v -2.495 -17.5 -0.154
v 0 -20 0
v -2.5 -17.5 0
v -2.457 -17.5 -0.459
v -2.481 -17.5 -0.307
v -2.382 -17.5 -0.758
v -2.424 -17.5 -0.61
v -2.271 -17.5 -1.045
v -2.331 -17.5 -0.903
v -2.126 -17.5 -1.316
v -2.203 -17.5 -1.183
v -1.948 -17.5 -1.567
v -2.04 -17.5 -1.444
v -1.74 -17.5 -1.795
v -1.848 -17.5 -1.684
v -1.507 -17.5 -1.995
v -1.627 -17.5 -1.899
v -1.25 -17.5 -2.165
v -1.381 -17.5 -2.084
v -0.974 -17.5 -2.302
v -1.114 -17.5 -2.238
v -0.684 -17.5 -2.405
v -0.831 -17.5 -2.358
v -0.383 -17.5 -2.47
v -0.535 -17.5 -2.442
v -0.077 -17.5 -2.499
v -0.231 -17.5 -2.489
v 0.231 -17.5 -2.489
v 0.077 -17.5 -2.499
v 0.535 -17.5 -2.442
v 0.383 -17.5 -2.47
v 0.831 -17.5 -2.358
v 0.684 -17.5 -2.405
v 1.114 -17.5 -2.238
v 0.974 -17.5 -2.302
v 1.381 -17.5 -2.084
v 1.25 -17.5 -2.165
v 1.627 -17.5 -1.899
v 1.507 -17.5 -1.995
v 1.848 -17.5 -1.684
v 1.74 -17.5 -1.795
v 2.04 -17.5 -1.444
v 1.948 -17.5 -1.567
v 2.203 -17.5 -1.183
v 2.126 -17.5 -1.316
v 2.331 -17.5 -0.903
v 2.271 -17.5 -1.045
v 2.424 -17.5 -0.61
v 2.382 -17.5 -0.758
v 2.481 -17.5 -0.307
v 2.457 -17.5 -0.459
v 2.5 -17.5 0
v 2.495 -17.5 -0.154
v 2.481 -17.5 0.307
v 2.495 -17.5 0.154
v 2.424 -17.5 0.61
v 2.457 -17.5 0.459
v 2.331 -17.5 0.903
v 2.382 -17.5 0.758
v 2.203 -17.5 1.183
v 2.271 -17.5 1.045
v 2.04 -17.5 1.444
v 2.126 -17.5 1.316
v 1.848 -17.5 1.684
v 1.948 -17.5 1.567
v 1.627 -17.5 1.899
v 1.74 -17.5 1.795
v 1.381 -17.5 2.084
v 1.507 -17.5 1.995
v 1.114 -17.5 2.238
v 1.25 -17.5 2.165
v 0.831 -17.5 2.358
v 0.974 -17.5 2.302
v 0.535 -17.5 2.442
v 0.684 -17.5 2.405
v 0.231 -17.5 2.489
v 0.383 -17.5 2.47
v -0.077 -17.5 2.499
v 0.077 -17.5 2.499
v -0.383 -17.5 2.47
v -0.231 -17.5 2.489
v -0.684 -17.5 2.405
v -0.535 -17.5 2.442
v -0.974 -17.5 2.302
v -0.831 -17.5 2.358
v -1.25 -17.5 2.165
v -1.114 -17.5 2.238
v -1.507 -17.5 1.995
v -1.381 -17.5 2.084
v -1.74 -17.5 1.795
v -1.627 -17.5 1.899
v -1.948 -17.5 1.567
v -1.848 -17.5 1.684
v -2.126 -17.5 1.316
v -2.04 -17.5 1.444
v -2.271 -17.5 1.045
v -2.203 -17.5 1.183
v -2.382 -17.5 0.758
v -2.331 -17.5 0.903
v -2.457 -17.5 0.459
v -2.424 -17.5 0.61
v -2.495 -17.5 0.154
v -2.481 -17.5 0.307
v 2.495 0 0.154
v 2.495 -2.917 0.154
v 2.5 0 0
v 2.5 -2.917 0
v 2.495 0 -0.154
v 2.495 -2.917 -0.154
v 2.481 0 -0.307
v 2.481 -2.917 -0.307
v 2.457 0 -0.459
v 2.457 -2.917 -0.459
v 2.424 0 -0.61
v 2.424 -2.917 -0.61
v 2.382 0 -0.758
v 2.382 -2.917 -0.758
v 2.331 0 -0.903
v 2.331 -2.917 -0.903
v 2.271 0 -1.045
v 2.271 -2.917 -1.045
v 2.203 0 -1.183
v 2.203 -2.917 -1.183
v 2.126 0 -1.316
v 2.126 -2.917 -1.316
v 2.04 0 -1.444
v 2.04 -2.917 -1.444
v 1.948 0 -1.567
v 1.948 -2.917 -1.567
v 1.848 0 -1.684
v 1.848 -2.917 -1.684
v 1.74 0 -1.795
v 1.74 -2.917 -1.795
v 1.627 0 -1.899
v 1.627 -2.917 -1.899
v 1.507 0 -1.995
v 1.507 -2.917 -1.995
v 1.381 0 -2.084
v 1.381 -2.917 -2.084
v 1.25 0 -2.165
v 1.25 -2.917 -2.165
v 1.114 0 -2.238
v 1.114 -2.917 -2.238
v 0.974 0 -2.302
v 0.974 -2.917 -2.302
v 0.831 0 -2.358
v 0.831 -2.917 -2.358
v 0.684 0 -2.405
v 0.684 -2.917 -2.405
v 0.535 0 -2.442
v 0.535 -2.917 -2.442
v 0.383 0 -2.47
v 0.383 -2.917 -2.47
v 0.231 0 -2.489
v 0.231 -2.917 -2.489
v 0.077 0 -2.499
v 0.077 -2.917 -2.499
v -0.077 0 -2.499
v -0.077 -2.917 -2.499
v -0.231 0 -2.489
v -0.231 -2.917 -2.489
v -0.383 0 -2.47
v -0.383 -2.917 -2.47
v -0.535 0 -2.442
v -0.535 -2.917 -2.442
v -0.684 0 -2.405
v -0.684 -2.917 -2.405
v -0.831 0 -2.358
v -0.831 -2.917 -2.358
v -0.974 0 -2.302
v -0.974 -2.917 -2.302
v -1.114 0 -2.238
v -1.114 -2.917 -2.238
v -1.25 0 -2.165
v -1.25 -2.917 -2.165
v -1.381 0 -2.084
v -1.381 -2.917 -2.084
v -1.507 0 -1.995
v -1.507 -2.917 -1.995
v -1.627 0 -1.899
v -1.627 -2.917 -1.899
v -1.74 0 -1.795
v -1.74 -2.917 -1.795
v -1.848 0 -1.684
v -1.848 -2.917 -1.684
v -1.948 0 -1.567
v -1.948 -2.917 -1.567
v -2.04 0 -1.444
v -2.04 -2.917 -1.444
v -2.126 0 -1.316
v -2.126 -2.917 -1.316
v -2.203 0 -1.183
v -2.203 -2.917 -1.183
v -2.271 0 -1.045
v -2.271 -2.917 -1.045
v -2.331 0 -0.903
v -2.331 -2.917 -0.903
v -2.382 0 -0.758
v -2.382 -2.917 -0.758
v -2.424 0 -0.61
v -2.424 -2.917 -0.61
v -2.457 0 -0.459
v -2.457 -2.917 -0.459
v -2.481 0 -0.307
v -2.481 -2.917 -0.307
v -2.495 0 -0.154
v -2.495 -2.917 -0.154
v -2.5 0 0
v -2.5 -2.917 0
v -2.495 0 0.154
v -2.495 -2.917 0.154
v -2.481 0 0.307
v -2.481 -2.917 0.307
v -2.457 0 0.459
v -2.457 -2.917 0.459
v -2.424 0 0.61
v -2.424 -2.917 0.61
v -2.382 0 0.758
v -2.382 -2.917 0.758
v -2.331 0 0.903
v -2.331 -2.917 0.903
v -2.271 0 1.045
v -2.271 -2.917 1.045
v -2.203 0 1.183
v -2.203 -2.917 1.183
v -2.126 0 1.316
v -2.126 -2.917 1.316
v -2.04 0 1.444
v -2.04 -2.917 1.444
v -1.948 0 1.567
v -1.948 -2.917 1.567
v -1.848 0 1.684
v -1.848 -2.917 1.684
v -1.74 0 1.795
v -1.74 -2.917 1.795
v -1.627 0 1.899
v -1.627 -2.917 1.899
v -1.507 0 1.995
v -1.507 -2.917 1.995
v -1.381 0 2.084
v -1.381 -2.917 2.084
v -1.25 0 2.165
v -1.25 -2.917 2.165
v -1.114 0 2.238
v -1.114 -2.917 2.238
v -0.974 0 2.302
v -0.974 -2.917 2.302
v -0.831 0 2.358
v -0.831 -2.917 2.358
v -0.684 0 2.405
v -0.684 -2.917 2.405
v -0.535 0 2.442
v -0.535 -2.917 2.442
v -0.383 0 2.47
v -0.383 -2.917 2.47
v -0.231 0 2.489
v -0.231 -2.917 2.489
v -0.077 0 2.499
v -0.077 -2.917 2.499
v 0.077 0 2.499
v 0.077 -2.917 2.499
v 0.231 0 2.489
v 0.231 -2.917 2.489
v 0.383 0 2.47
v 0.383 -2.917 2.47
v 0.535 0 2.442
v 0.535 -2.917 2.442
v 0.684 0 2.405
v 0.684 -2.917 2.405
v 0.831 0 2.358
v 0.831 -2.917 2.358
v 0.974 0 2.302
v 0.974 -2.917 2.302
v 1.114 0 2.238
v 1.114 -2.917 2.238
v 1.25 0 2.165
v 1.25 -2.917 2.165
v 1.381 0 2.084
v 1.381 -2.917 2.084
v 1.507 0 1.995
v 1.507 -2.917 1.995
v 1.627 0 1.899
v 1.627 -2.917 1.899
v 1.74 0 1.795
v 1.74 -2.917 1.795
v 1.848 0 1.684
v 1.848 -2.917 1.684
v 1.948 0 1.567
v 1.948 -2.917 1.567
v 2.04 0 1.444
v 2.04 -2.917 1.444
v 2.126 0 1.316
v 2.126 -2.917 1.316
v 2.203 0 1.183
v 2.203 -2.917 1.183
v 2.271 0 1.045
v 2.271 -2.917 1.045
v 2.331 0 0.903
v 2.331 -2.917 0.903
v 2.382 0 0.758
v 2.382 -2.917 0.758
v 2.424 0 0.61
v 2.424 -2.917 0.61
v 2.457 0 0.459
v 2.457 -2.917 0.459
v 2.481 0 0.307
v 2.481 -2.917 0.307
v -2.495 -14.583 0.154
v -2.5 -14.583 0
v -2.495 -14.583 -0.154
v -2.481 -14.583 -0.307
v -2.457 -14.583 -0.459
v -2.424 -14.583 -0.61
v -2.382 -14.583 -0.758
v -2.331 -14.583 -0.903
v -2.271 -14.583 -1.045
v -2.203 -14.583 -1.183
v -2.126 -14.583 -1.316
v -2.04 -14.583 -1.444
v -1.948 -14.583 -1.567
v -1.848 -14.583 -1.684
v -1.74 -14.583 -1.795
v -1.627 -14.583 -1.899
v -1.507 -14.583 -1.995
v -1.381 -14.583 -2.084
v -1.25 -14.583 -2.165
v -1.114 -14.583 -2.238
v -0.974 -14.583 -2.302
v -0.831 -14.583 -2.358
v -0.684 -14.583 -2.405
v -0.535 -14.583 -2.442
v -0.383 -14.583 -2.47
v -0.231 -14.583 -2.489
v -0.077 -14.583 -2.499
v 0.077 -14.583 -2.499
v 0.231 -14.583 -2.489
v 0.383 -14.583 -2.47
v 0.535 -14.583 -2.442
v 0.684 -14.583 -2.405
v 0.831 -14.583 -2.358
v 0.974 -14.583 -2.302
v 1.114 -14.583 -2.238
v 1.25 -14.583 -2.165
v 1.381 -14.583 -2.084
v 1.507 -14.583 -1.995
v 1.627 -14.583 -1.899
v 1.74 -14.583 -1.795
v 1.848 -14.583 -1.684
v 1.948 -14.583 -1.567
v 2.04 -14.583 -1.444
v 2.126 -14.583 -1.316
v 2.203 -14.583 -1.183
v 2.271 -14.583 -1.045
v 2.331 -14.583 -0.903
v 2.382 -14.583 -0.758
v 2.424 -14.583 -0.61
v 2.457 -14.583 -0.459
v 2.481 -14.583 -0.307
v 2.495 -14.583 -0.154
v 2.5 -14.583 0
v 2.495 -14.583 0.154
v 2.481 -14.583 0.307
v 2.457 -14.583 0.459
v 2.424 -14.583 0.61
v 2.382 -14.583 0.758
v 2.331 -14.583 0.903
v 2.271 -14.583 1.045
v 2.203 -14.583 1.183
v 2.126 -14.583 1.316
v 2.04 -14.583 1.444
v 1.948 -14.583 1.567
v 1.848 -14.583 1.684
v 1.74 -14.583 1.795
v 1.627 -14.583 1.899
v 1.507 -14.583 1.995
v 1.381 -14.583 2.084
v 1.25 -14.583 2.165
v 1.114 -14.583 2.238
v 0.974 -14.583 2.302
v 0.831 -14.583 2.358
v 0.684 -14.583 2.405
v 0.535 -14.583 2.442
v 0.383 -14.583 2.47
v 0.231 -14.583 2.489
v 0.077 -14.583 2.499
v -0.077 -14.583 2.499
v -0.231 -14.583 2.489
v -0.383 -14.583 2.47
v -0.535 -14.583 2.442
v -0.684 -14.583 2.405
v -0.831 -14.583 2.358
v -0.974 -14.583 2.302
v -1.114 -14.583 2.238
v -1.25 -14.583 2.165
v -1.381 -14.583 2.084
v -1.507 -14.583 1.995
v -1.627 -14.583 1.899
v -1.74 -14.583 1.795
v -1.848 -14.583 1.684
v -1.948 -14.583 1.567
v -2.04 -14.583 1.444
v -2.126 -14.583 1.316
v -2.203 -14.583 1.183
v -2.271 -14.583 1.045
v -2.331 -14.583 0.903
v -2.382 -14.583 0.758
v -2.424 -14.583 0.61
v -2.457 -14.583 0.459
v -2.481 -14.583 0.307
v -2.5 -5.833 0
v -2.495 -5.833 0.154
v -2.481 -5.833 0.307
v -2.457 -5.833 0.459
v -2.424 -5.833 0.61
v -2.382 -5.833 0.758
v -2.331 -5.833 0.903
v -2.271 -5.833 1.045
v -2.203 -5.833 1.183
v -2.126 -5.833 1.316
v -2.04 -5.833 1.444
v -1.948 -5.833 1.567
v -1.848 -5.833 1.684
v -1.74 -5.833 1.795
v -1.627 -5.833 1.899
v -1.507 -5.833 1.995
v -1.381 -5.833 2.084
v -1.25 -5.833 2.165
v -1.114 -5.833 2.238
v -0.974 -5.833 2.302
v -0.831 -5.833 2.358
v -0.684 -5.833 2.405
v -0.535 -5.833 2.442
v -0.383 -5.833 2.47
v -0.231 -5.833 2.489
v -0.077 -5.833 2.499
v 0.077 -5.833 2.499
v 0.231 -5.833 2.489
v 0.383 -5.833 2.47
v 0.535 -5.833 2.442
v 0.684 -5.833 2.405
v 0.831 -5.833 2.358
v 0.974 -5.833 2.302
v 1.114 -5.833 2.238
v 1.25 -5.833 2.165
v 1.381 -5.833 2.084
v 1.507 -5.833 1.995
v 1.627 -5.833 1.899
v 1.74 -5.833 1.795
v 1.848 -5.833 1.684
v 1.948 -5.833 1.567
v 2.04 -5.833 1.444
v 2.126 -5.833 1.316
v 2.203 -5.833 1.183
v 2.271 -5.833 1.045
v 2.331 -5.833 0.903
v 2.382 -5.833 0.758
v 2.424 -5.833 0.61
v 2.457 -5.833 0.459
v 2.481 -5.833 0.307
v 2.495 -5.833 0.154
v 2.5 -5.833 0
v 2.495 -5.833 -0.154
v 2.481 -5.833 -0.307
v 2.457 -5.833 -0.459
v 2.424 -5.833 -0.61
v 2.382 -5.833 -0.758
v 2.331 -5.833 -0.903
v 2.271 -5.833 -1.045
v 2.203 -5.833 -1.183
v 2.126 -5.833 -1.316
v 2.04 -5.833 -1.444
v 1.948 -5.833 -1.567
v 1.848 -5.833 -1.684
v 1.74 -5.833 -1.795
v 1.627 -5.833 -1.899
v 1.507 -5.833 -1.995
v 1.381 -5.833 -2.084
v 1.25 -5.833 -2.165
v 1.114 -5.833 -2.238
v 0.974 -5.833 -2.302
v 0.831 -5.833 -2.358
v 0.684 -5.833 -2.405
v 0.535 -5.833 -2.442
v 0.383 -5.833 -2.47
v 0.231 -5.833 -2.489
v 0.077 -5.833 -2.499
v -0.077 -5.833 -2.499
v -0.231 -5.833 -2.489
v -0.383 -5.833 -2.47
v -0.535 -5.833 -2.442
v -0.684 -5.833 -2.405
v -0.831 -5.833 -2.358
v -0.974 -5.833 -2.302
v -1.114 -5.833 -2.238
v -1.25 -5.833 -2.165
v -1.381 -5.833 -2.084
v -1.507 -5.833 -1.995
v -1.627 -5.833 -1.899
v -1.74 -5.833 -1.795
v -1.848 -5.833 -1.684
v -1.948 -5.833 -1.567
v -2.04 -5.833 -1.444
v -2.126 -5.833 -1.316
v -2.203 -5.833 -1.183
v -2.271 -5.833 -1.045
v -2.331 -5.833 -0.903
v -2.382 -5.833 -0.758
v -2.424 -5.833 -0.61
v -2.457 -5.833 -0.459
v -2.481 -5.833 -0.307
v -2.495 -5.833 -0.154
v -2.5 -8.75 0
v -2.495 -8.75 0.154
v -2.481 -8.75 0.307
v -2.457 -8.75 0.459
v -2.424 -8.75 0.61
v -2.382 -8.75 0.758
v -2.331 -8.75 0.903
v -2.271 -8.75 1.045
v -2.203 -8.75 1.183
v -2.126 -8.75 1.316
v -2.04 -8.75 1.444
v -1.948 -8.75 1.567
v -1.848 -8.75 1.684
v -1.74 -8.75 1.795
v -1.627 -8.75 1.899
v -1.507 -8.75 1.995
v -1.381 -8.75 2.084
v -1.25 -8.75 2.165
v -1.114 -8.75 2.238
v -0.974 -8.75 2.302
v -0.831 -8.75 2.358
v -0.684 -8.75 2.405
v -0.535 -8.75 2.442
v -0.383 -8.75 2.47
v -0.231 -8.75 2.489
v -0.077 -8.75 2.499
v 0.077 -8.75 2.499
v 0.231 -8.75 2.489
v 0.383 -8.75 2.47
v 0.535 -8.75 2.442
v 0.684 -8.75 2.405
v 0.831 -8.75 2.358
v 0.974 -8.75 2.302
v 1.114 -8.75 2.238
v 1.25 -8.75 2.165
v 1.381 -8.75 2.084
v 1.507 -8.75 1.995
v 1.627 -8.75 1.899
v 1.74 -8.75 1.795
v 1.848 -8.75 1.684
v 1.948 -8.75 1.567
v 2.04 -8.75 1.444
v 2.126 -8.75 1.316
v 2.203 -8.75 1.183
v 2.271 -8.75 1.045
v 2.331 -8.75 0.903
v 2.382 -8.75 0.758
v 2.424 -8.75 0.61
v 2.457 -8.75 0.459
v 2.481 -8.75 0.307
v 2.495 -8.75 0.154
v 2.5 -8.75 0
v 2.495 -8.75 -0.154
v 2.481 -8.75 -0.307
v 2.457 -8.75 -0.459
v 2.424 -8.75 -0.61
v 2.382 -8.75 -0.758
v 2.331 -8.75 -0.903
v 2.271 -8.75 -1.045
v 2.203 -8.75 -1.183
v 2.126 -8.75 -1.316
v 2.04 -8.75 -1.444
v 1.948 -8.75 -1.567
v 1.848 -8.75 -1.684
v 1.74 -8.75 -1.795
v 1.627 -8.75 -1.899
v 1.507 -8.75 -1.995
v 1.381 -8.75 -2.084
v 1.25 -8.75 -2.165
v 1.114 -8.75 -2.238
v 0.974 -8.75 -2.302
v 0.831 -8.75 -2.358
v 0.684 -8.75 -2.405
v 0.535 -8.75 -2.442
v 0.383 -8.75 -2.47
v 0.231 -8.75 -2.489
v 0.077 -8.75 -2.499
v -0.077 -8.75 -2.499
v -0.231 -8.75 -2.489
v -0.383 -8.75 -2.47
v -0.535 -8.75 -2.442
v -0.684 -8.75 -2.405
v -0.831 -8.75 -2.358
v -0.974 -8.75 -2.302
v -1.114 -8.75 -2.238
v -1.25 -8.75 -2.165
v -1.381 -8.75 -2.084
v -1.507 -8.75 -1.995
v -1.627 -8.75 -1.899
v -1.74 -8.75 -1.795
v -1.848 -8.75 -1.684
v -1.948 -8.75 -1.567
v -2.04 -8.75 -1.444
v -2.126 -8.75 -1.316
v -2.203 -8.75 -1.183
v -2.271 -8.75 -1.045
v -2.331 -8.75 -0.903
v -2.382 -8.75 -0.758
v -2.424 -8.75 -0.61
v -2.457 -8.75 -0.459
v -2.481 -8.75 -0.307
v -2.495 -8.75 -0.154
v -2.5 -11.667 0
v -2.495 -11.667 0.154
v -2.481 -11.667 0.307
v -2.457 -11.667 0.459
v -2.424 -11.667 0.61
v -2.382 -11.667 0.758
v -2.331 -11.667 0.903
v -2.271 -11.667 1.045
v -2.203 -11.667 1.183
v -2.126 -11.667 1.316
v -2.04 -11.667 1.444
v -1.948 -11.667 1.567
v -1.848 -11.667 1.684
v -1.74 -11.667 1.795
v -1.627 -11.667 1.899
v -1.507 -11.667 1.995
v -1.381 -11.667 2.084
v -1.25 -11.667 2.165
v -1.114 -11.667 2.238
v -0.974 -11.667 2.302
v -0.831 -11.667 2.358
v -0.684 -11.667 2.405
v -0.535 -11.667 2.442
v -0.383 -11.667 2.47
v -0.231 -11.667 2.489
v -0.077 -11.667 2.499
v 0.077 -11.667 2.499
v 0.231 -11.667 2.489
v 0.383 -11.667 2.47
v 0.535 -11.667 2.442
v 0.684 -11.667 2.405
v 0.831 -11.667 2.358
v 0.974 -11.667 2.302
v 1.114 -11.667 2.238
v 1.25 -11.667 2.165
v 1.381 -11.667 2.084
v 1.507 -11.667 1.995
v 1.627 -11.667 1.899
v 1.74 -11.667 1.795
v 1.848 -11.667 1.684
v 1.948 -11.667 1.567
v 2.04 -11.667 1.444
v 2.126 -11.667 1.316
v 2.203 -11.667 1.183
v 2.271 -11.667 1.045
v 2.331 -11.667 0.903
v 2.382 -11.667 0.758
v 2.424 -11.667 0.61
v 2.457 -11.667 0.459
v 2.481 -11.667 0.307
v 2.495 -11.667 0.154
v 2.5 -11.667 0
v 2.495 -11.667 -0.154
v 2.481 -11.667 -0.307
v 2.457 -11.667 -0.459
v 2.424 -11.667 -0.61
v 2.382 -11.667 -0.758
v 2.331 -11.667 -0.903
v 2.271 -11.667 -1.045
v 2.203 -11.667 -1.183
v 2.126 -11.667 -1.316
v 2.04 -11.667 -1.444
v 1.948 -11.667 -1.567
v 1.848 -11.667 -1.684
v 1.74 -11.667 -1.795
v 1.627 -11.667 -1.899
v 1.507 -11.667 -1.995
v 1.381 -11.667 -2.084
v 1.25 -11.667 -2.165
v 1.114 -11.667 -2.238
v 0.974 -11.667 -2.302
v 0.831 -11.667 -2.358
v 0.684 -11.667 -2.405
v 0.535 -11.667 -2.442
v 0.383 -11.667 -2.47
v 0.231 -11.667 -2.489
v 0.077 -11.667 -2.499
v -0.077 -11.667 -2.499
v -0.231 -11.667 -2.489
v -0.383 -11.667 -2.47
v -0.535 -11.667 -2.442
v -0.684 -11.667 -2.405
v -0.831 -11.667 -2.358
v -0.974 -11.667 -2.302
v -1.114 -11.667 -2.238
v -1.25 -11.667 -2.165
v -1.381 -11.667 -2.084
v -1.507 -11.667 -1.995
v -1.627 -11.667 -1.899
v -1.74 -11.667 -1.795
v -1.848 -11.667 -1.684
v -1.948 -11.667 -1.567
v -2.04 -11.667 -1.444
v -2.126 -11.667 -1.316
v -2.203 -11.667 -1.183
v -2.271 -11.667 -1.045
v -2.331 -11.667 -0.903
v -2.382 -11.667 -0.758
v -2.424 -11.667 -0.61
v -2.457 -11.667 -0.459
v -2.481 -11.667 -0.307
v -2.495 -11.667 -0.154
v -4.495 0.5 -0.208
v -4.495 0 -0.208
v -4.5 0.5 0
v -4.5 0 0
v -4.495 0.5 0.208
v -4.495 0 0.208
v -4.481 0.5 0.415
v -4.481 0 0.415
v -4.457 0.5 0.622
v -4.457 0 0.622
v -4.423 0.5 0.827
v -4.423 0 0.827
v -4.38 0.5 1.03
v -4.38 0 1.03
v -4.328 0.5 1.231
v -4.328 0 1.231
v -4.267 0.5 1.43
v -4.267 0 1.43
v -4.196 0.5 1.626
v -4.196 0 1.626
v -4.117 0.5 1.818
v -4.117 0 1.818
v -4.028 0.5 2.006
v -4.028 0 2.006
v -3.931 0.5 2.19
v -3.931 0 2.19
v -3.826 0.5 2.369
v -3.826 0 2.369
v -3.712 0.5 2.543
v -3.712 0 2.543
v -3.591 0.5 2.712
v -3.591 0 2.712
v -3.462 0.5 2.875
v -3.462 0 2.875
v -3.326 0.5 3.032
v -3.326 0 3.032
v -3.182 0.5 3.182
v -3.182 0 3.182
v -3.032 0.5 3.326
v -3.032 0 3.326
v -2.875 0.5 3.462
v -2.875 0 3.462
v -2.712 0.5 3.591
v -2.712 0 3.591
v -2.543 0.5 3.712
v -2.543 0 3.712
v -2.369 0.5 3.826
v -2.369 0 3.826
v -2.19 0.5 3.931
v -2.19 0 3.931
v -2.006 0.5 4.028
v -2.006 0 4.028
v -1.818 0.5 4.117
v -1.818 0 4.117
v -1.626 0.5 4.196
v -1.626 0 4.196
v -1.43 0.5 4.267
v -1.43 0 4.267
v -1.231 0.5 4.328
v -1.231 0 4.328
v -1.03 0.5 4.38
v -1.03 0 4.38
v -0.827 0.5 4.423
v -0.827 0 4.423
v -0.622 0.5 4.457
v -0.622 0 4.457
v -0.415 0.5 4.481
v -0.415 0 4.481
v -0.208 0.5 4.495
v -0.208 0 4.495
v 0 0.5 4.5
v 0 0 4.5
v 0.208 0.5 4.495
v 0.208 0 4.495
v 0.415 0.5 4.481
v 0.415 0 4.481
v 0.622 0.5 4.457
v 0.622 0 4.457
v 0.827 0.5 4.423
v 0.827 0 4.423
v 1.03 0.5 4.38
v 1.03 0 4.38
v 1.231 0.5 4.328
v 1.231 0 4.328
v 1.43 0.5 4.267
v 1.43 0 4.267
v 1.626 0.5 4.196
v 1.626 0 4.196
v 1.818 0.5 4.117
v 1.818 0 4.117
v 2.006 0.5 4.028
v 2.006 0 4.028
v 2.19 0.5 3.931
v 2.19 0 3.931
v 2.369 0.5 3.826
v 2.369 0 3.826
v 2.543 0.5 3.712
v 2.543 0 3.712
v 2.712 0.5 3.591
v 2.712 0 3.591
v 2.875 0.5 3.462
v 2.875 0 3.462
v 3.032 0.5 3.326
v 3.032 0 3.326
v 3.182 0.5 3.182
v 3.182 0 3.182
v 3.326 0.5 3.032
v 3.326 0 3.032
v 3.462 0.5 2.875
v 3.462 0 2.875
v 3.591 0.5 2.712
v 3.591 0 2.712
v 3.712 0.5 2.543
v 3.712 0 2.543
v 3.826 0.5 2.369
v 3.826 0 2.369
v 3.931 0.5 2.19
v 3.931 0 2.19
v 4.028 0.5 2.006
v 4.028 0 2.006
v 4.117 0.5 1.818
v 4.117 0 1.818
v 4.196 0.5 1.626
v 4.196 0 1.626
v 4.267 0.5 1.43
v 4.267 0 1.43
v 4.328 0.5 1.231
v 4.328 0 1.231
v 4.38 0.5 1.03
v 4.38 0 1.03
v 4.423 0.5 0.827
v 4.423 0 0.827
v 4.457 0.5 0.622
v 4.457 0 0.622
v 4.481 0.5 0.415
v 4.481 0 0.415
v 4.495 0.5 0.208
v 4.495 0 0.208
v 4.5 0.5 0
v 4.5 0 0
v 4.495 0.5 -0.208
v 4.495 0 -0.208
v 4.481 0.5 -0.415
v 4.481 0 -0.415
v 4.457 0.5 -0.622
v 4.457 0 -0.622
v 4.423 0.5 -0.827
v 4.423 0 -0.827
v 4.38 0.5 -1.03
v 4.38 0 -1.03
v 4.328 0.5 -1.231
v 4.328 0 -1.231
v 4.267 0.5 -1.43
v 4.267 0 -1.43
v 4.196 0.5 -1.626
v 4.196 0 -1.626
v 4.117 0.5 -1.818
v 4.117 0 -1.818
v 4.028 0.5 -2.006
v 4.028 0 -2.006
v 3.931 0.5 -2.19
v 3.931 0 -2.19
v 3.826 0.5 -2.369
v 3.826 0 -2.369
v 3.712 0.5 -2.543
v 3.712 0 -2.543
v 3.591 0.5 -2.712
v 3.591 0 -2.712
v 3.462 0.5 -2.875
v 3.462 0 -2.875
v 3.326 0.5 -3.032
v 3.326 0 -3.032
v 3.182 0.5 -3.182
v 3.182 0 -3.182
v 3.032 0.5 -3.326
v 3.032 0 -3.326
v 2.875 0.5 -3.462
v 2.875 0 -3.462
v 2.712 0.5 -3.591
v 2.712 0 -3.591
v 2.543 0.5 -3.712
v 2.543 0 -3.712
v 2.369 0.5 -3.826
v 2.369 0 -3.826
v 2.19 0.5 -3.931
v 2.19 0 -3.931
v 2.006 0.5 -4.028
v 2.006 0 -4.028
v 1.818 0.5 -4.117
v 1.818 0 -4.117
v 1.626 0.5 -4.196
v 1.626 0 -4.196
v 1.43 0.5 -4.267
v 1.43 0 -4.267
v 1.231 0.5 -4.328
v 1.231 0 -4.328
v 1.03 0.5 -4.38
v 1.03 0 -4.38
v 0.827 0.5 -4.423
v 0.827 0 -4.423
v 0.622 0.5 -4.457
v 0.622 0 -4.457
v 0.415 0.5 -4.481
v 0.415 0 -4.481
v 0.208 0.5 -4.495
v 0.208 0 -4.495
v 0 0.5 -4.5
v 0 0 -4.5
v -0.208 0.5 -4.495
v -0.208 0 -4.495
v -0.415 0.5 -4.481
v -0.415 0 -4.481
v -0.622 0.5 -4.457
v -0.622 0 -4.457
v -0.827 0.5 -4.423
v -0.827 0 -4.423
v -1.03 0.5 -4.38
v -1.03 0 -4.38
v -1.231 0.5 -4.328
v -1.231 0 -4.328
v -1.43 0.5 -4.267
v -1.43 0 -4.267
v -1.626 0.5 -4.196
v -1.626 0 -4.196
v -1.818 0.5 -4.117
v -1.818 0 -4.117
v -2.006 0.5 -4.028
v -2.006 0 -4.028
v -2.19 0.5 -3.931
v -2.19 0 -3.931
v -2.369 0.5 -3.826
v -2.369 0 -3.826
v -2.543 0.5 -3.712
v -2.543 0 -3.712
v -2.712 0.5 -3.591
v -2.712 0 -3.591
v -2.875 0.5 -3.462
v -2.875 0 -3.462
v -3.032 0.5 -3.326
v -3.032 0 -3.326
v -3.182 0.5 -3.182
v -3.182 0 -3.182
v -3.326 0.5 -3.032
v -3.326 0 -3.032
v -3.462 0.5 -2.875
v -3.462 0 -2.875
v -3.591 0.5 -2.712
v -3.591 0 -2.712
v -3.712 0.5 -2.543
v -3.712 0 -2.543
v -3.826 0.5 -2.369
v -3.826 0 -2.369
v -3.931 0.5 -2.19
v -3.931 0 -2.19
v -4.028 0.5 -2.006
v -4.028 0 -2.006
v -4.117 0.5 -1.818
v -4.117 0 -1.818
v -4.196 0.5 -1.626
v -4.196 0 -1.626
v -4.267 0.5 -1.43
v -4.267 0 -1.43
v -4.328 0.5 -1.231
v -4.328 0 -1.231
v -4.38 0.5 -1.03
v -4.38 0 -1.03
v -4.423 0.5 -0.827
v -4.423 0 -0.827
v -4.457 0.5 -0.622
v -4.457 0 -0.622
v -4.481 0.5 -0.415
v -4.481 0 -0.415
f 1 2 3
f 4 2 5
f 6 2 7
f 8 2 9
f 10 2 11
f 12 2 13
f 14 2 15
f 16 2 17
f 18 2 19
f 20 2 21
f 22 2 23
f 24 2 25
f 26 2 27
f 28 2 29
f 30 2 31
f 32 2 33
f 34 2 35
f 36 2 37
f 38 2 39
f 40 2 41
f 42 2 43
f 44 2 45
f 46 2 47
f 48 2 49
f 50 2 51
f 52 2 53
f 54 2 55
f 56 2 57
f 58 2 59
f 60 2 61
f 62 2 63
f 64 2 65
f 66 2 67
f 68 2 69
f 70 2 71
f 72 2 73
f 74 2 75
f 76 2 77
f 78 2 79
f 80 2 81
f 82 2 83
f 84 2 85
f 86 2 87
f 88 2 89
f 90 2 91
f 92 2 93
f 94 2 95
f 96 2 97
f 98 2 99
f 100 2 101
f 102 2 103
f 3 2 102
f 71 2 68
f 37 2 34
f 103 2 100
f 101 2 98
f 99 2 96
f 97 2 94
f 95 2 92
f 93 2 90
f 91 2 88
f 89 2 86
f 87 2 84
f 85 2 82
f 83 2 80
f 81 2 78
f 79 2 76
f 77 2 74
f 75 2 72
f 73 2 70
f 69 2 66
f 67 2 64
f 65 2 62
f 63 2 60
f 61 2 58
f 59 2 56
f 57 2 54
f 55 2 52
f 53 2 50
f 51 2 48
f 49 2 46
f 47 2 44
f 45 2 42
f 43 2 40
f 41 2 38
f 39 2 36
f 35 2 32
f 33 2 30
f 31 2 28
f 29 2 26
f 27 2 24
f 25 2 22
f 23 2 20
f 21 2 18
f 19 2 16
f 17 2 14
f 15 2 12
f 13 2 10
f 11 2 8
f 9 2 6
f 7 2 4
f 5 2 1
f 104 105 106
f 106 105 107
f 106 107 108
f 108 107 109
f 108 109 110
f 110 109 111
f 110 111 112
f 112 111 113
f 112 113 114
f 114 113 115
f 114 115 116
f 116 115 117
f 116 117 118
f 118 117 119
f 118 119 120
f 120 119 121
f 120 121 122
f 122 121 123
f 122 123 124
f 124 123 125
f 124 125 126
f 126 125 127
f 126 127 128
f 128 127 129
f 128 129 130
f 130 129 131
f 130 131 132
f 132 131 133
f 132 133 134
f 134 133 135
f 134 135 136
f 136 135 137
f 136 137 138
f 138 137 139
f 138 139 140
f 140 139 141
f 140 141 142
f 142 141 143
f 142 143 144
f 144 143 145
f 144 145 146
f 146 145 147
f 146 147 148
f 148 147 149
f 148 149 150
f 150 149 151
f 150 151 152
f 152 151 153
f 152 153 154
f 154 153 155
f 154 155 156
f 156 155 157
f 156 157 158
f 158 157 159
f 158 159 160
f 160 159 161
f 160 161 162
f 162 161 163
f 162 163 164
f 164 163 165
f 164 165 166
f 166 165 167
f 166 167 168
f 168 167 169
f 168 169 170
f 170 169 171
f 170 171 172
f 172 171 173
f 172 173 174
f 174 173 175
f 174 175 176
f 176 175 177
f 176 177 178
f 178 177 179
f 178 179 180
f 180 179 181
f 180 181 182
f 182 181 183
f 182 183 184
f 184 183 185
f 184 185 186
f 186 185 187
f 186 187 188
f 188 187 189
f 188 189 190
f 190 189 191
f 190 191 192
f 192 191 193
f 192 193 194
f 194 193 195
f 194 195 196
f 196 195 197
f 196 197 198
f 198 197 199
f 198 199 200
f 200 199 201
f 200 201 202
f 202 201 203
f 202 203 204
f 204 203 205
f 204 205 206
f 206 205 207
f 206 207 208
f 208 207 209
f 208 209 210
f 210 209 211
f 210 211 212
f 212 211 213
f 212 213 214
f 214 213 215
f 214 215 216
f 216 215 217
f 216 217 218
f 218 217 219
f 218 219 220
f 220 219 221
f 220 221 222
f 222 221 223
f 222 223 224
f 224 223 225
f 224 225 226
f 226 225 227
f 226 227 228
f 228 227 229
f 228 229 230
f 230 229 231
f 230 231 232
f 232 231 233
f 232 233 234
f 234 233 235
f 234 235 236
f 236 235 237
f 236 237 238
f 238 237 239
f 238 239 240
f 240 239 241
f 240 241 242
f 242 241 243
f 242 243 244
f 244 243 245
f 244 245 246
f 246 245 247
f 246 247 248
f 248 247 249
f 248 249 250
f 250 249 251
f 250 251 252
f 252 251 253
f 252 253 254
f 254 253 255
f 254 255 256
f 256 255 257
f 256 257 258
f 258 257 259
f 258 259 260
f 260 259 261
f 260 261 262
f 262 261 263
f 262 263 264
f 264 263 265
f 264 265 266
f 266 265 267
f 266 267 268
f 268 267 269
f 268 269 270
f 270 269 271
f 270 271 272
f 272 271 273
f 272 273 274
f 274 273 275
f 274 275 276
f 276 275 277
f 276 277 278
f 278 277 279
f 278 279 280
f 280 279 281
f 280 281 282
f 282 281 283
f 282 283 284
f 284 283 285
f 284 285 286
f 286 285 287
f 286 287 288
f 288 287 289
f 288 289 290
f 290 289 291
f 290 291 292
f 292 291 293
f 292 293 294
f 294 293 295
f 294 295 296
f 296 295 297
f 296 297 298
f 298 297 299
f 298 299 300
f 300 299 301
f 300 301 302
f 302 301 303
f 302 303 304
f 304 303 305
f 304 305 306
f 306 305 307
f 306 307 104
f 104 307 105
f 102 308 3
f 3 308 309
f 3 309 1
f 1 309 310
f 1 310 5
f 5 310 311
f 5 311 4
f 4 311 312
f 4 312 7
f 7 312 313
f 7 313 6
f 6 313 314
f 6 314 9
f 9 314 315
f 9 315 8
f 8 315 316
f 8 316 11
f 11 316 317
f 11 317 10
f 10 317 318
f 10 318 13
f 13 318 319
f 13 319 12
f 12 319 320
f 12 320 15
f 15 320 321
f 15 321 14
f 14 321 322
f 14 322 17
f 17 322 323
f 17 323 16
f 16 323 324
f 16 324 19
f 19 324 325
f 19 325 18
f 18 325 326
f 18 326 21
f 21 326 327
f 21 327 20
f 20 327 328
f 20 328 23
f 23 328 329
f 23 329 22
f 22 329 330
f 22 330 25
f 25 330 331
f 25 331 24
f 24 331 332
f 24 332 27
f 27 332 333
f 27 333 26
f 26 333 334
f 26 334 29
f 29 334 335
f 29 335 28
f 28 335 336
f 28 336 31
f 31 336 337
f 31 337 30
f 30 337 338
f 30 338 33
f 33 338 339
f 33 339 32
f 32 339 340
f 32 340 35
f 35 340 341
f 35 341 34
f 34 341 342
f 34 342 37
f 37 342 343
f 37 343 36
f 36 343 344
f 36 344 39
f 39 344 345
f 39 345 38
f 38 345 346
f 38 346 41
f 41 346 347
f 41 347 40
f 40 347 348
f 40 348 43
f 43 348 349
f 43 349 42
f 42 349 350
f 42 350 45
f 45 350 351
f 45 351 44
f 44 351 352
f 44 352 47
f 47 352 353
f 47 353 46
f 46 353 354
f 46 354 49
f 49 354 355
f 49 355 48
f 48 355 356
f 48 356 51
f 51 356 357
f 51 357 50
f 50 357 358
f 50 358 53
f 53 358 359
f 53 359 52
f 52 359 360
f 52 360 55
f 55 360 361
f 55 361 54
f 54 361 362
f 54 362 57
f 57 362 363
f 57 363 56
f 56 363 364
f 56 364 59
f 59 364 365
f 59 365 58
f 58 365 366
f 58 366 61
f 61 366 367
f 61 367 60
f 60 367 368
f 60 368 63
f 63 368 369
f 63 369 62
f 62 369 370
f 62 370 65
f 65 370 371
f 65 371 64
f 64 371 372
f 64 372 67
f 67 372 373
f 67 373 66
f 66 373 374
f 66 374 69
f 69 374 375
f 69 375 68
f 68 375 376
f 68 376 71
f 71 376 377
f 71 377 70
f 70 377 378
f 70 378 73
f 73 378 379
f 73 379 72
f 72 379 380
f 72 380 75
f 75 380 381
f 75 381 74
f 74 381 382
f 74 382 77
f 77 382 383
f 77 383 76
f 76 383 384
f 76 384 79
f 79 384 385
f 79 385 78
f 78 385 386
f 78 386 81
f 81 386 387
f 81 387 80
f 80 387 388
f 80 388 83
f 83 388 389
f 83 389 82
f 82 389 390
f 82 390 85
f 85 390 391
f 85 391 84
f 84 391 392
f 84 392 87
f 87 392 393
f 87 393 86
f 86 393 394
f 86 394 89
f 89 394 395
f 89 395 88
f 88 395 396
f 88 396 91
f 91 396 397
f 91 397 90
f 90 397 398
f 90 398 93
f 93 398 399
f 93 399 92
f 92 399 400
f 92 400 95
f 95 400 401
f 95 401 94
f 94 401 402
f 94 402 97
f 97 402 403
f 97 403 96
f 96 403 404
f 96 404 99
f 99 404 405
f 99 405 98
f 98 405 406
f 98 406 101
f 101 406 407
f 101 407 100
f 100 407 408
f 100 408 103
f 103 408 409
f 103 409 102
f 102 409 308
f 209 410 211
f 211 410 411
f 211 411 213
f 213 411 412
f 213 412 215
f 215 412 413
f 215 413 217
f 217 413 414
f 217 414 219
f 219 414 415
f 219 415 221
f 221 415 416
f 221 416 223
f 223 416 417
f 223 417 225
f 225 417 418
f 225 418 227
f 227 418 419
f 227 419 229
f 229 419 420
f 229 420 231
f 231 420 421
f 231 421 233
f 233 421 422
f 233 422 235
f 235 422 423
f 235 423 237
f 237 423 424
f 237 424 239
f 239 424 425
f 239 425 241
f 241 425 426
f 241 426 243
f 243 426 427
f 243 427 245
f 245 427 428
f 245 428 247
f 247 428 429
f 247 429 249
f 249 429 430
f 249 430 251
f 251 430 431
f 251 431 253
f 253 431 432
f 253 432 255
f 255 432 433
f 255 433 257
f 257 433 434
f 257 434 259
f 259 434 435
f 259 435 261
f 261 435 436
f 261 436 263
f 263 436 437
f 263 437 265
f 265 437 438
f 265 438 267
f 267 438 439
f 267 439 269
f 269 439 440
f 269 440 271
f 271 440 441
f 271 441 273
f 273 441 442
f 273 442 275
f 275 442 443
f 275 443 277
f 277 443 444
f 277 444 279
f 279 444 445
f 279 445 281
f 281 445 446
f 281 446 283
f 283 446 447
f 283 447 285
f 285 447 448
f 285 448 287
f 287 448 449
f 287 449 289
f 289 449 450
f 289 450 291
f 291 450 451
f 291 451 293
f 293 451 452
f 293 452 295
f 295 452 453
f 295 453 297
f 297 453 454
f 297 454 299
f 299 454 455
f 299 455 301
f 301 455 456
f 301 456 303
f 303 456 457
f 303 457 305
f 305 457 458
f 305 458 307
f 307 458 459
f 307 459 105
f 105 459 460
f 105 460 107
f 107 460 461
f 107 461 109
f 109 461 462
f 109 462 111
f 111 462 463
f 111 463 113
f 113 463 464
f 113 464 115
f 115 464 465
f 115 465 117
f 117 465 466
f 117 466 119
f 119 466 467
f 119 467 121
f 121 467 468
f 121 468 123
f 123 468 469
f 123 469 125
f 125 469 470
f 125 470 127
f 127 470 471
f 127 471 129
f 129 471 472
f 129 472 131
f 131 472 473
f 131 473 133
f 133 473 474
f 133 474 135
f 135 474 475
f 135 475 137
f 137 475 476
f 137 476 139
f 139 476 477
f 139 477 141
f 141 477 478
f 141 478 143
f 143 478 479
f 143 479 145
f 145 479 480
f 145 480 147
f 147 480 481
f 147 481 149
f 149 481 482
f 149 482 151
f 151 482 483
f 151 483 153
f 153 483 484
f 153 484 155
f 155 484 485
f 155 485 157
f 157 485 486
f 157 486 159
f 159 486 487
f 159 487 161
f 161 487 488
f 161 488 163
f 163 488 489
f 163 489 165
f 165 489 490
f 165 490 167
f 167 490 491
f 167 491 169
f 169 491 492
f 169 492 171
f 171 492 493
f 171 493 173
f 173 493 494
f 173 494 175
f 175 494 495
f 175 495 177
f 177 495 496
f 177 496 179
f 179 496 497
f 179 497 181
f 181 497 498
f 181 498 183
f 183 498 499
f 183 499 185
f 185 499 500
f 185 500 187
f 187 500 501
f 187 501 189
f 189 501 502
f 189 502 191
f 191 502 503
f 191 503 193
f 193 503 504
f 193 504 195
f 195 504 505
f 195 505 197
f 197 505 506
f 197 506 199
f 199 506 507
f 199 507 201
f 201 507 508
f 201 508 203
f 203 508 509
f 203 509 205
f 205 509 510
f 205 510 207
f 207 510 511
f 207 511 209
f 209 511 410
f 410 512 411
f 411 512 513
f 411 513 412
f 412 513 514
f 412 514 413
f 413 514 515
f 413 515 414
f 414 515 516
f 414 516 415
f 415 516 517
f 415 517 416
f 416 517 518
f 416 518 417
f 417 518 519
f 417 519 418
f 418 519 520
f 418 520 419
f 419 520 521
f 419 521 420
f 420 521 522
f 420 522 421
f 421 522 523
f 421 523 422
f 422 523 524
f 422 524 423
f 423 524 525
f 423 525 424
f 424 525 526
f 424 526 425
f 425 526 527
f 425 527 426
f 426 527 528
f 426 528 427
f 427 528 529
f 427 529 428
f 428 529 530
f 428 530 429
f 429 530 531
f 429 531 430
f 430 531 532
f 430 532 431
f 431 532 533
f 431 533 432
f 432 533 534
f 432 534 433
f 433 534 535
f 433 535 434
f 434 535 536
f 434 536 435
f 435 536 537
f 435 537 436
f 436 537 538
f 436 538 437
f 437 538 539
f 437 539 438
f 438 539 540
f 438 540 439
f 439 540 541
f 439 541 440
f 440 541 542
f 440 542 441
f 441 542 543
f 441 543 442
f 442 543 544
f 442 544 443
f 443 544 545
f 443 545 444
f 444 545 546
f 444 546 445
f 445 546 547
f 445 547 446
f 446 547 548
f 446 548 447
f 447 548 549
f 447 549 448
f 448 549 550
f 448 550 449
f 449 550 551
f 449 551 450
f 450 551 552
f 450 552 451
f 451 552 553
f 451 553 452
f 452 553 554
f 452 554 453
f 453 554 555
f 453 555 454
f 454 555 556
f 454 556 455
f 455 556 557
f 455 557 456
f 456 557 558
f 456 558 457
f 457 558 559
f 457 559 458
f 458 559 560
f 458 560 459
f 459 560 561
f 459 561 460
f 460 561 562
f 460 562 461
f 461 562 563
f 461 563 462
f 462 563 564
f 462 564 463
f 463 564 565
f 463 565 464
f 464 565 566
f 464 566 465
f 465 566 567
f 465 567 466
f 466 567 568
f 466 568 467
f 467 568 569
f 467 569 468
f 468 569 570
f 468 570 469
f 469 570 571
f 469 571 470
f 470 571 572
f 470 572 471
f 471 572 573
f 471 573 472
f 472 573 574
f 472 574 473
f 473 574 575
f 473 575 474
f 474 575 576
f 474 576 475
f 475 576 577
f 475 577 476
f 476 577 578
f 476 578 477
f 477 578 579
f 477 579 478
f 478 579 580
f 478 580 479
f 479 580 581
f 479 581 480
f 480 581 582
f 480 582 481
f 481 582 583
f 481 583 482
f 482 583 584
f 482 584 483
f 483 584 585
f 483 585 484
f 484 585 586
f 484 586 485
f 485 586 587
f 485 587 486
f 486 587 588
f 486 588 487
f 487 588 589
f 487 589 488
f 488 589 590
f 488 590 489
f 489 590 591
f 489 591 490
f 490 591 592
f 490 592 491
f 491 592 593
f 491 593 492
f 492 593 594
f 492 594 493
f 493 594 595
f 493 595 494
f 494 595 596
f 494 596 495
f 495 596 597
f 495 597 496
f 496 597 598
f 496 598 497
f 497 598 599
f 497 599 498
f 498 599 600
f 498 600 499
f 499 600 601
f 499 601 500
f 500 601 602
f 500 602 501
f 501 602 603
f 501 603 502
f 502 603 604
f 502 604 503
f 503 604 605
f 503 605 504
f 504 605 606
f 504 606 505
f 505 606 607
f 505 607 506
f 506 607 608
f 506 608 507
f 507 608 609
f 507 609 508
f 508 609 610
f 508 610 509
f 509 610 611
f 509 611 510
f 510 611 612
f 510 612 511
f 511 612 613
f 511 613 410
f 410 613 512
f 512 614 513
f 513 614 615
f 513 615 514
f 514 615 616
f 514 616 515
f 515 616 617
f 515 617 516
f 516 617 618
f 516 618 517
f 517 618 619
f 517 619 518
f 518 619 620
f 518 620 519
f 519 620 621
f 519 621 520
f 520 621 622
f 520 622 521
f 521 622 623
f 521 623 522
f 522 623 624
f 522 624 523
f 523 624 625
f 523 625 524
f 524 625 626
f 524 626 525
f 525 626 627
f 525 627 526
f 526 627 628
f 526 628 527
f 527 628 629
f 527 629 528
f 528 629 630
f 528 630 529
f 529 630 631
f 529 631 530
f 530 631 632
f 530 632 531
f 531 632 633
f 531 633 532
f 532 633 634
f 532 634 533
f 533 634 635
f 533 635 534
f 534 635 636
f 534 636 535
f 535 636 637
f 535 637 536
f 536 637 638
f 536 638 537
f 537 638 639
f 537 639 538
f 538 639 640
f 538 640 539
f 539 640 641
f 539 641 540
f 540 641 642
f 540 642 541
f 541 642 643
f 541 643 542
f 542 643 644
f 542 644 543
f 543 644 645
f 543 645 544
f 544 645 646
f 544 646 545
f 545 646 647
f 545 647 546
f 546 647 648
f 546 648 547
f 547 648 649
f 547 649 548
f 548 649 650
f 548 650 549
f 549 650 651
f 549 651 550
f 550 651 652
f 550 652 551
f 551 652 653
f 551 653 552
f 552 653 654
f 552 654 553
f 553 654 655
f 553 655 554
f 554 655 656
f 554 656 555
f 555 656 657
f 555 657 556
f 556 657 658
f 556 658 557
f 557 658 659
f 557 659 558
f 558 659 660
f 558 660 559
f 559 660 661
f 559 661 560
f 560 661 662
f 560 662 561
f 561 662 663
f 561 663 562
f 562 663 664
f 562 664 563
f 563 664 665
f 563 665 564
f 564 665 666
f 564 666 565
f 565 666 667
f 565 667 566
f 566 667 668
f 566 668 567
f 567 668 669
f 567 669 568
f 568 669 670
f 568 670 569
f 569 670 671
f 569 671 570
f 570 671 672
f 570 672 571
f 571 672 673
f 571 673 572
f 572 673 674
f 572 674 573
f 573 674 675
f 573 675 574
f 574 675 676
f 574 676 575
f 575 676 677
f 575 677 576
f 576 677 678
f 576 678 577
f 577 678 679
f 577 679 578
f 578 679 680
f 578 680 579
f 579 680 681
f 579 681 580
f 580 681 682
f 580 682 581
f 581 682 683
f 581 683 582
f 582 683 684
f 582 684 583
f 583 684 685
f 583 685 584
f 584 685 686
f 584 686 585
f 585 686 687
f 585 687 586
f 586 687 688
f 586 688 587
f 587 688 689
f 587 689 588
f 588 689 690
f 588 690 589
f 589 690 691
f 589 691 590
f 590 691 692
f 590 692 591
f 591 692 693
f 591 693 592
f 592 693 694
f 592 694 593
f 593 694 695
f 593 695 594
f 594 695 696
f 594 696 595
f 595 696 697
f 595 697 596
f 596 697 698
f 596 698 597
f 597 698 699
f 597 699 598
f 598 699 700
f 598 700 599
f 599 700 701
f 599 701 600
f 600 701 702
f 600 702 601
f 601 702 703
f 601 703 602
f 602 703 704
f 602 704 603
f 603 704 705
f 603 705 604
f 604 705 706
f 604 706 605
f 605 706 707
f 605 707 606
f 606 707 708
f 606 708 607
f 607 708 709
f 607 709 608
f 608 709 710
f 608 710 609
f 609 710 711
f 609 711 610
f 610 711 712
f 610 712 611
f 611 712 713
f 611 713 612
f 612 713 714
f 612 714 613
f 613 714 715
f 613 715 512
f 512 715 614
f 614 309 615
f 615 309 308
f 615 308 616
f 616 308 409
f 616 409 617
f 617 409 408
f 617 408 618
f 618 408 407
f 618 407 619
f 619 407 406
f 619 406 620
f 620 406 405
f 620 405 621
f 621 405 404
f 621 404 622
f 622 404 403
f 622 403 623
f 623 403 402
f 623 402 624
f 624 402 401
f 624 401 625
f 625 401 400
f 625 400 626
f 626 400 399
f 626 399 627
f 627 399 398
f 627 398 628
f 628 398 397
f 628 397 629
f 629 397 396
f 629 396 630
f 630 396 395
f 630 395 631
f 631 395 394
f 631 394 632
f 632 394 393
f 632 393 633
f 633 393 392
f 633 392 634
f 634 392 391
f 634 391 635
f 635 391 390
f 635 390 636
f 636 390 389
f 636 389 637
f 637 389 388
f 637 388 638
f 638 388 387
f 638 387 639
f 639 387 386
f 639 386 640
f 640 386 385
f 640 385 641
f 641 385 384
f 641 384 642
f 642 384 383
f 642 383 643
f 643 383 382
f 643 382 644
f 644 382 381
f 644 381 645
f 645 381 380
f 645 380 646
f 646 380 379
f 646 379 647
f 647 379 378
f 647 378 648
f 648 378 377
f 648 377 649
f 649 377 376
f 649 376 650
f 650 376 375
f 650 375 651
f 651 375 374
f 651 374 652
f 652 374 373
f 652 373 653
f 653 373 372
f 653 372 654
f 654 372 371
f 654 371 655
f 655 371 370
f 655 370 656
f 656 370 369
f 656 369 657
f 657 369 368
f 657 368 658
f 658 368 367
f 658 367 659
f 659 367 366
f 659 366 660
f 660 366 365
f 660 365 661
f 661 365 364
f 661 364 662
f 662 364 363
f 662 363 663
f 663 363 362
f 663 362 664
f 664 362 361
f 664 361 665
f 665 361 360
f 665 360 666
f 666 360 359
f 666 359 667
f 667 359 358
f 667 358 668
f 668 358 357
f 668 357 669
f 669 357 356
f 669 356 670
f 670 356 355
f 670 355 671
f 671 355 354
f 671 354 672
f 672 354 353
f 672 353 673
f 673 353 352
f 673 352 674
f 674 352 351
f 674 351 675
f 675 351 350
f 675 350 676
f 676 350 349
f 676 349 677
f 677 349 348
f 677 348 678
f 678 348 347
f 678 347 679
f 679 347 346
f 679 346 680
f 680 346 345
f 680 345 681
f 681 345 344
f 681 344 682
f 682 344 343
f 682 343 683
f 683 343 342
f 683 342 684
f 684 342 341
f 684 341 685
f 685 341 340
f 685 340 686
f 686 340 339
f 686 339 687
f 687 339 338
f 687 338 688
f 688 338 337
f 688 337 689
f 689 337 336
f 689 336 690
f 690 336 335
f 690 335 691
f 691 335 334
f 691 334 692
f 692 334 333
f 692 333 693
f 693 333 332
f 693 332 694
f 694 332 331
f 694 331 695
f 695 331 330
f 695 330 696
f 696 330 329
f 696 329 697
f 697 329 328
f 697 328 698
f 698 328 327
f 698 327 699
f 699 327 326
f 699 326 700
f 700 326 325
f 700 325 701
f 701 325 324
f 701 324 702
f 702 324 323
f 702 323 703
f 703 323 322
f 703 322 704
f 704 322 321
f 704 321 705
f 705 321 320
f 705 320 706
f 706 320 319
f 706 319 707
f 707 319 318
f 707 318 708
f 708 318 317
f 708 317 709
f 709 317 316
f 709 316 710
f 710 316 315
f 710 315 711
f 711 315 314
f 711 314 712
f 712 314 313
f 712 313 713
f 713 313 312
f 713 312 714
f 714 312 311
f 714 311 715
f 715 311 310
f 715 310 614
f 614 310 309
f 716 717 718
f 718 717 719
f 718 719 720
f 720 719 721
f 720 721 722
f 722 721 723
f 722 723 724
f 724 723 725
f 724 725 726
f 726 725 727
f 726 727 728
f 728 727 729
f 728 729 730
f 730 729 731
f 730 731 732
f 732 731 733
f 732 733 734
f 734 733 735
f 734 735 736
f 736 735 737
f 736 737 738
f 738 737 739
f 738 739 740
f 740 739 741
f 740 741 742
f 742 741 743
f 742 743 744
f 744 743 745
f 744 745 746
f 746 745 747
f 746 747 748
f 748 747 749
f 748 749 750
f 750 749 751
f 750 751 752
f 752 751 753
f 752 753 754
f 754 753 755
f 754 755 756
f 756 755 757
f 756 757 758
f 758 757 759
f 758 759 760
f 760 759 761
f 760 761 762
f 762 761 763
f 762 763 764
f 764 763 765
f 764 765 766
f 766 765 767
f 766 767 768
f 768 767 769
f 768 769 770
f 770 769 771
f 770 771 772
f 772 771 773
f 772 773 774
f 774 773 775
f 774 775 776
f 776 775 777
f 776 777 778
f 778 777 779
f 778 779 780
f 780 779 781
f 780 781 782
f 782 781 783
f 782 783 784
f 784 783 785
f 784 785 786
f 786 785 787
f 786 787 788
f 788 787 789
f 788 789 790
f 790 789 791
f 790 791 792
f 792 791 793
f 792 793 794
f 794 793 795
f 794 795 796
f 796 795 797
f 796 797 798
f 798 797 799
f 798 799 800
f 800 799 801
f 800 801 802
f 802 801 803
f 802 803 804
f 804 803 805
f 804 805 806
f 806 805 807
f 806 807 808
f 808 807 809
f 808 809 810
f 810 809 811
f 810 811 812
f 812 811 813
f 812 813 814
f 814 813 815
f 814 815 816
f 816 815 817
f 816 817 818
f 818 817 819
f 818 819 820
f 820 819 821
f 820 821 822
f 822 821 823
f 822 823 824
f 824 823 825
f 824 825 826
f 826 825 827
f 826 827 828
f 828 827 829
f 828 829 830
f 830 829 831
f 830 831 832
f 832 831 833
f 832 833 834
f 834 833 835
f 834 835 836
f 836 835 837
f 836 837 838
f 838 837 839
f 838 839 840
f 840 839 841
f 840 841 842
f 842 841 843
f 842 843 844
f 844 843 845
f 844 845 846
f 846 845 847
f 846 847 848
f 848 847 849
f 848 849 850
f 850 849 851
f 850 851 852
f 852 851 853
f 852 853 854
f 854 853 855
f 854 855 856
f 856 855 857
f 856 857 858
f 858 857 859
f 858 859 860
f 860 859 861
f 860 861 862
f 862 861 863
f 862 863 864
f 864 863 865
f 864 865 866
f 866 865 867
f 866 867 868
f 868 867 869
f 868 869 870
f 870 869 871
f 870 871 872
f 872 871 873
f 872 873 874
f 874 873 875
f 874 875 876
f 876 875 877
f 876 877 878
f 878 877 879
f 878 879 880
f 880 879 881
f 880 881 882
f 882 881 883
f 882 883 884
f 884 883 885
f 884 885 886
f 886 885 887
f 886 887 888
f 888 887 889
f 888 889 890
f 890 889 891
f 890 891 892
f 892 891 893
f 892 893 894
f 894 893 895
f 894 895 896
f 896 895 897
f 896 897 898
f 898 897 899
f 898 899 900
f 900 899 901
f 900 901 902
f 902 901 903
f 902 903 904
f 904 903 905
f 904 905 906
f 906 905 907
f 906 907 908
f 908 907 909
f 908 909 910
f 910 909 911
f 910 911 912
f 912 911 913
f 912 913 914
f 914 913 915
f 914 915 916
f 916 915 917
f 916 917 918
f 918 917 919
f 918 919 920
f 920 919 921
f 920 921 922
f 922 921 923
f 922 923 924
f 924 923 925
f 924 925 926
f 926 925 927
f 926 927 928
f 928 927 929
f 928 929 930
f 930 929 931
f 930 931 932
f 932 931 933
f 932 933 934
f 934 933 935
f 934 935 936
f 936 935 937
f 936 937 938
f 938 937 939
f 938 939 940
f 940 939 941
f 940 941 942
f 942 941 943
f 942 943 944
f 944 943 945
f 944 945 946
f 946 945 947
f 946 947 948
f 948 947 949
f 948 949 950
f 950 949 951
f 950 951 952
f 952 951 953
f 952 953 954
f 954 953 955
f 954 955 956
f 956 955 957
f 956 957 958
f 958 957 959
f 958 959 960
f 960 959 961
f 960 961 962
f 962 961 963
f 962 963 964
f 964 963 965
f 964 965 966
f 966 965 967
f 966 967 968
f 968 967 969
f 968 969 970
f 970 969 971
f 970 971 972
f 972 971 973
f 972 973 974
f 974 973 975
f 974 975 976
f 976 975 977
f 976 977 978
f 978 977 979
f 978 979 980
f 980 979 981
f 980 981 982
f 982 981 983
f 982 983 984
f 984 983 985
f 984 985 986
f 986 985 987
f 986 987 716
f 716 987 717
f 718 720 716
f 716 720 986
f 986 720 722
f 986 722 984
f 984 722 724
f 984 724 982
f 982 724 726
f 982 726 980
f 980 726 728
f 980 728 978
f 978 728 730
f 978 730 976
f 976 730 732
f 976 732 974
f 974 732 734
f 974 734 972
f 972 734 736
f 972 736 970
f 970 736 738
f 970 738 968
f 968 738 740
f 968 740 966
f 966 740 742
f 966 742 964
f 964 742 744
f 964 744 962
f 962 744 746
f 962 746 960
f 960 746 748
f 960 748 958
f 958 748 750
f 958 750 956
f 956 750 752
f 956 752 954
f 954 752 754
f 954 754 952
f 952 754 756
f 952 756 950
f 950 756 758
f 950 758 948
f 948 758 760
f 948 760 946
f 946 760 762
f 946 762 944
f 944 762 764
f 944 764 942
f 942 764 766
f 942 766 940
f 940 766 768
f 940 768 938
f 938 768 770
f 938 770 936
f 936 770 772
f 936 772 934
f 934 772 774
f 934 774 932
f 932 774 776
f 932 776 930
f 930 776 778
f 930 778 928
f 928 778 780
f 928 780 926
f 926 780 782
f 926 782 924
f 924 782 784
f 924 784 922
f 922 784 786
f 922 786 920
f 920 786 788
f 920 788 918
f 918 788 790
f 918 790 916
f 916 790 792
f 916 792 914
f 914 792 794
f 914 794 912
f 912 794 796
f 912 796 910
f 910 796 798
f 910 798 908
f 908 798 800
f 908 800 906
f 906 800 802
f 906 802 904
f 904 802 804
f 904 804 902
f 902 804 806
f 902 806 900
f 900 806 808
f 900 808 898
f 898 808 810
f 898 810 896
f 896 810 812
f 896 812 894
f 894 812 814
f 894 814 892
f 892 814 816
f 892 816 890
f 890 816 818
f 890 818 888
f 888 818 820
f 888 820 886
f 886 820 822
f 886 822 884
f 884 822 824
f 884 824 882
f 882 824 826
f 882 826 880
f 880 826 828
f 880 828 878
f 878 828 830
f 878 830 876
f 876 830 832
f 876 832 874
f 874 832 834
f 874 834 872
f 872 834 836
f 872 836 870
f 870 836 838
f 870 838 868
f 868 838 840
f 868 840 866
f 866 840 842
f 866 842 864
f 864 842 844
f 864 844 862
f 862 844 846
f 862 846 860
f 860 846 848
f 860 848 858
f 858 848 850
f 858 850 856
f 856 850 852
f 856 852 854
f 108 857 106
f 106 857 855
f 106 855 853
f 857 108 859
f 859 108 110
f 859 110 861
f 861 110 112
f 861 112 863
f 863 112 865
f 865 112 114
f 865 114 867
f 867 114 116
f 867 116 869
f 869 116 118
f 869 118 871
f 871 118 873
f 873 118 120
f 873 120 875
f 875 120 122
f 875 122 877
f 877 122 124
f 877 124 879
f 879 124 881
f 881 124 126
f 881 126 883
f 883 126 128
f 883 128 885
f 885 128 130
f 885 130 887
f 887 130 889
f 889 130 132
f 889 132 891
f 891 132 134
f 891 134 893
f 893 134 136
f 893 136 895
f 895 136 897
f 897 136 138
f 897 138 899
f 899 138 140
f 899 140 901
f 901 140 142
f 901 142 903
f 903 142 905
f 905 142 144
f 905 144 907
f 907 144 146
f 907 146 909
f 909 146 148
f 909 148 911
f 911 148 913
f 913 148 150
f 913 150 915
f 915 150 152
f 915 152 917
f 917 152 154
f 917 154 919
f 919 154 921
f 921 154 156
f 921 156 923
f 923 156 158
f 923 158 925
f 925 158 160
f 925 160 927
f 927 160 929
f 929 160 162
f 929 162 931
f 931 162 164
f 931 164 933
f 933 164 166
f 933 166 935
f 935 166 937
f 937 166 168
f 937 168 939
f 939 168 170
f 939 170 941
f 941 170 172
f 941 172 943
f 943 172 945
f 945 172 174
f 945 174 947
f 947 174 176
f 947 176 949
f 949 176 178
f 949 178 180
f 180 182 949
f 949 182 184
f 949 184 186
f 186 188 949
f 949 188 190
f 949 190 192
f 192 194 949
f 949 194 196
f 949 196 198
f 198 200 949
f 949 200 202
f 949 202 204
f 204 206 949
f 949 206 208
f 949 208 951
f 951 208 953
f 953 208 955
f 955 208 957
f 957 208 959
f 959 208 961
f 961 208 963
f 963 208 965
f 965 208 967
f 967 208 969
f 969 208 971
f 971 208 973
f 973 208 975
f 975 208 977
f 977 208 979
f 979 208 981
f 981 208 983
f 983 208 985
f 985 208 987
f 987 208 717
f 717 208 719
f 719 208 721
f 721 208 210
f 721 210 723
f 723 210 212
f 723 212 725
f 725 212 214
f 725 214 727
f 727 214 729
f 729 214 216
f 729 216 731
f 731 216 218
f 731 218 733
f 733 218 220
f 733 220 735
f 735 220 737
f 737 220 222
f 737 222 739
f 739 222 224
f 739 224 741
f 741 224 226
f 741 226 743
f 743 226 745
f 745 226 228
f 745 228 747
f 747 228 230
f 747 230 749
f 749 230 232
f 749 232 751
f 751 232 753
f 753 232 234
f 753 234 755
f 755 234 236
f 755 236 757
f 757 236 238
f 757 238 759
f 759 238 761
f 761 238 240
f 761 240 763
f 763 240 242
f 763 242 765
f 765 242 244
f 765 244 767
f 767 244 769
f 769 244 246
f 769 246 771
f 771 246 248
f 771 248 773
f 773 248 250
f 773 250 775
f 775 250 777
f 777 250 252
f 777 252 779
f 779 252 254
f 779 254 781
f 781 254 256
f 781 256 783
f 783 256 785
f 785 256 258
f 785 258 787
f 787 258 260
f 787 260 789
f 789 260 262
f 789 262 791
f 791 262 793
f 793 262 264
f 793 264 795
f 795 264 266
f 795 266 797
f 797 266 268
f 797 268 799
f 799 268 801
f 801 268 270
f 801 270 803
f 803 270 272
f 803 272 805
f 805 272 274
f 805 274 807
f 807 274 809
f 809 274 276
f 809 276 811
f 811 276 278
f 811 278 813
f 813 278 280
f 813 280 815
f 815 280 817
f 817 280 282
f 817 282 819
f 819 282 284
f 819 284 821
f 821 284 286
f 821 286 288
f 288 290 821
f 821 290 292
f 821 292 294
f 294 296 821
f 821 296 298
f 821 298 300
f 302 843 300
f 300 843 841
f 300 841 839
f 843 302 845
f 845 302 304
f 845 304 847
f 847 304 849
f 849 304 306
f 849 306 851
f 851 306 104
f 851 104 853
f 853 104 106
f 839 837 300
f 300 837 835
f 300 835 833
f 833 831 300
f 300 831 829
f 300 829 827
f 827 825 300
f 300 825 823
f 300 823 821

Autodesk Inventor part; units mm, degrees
ref_plane "YZ Plane" through (0, 0, 0) normal (1, 0, 0) x (0, 1, 0)
ref_plane "XZ Plane" through (0, 0, 0) normal (0, 1, 0) x (-1, 0, 0)
ref_plane "XY Plane" through (0, 0, 0) normal (0, 0, 1) x (1, 0, 0)
sketch "Sketch1" plane through (0, 0, 0) normal (0, 1, 0) x (-1, 0, 0)
  circle A0 centre (0, 0) radius 4.5
  dimension "d0" = 9
extrude "Extrusion1" add sketch "Sketch1" along normal blind 0.5
sketch "Sketch2" plane through (0, 0, 0) normal (0, -1, 0) x (1, 0, 0)
  circle A0 centre (0, 0) radius 2.5
  dimension "d3" = 5
extrude "Extrusion2" add sketch "Sketch2" along normal blind 20
chamfer "Chamfer1" distance 2.5 angle 45 1 edges at (-2.5, -20, 0)
properties part number "Pin"
